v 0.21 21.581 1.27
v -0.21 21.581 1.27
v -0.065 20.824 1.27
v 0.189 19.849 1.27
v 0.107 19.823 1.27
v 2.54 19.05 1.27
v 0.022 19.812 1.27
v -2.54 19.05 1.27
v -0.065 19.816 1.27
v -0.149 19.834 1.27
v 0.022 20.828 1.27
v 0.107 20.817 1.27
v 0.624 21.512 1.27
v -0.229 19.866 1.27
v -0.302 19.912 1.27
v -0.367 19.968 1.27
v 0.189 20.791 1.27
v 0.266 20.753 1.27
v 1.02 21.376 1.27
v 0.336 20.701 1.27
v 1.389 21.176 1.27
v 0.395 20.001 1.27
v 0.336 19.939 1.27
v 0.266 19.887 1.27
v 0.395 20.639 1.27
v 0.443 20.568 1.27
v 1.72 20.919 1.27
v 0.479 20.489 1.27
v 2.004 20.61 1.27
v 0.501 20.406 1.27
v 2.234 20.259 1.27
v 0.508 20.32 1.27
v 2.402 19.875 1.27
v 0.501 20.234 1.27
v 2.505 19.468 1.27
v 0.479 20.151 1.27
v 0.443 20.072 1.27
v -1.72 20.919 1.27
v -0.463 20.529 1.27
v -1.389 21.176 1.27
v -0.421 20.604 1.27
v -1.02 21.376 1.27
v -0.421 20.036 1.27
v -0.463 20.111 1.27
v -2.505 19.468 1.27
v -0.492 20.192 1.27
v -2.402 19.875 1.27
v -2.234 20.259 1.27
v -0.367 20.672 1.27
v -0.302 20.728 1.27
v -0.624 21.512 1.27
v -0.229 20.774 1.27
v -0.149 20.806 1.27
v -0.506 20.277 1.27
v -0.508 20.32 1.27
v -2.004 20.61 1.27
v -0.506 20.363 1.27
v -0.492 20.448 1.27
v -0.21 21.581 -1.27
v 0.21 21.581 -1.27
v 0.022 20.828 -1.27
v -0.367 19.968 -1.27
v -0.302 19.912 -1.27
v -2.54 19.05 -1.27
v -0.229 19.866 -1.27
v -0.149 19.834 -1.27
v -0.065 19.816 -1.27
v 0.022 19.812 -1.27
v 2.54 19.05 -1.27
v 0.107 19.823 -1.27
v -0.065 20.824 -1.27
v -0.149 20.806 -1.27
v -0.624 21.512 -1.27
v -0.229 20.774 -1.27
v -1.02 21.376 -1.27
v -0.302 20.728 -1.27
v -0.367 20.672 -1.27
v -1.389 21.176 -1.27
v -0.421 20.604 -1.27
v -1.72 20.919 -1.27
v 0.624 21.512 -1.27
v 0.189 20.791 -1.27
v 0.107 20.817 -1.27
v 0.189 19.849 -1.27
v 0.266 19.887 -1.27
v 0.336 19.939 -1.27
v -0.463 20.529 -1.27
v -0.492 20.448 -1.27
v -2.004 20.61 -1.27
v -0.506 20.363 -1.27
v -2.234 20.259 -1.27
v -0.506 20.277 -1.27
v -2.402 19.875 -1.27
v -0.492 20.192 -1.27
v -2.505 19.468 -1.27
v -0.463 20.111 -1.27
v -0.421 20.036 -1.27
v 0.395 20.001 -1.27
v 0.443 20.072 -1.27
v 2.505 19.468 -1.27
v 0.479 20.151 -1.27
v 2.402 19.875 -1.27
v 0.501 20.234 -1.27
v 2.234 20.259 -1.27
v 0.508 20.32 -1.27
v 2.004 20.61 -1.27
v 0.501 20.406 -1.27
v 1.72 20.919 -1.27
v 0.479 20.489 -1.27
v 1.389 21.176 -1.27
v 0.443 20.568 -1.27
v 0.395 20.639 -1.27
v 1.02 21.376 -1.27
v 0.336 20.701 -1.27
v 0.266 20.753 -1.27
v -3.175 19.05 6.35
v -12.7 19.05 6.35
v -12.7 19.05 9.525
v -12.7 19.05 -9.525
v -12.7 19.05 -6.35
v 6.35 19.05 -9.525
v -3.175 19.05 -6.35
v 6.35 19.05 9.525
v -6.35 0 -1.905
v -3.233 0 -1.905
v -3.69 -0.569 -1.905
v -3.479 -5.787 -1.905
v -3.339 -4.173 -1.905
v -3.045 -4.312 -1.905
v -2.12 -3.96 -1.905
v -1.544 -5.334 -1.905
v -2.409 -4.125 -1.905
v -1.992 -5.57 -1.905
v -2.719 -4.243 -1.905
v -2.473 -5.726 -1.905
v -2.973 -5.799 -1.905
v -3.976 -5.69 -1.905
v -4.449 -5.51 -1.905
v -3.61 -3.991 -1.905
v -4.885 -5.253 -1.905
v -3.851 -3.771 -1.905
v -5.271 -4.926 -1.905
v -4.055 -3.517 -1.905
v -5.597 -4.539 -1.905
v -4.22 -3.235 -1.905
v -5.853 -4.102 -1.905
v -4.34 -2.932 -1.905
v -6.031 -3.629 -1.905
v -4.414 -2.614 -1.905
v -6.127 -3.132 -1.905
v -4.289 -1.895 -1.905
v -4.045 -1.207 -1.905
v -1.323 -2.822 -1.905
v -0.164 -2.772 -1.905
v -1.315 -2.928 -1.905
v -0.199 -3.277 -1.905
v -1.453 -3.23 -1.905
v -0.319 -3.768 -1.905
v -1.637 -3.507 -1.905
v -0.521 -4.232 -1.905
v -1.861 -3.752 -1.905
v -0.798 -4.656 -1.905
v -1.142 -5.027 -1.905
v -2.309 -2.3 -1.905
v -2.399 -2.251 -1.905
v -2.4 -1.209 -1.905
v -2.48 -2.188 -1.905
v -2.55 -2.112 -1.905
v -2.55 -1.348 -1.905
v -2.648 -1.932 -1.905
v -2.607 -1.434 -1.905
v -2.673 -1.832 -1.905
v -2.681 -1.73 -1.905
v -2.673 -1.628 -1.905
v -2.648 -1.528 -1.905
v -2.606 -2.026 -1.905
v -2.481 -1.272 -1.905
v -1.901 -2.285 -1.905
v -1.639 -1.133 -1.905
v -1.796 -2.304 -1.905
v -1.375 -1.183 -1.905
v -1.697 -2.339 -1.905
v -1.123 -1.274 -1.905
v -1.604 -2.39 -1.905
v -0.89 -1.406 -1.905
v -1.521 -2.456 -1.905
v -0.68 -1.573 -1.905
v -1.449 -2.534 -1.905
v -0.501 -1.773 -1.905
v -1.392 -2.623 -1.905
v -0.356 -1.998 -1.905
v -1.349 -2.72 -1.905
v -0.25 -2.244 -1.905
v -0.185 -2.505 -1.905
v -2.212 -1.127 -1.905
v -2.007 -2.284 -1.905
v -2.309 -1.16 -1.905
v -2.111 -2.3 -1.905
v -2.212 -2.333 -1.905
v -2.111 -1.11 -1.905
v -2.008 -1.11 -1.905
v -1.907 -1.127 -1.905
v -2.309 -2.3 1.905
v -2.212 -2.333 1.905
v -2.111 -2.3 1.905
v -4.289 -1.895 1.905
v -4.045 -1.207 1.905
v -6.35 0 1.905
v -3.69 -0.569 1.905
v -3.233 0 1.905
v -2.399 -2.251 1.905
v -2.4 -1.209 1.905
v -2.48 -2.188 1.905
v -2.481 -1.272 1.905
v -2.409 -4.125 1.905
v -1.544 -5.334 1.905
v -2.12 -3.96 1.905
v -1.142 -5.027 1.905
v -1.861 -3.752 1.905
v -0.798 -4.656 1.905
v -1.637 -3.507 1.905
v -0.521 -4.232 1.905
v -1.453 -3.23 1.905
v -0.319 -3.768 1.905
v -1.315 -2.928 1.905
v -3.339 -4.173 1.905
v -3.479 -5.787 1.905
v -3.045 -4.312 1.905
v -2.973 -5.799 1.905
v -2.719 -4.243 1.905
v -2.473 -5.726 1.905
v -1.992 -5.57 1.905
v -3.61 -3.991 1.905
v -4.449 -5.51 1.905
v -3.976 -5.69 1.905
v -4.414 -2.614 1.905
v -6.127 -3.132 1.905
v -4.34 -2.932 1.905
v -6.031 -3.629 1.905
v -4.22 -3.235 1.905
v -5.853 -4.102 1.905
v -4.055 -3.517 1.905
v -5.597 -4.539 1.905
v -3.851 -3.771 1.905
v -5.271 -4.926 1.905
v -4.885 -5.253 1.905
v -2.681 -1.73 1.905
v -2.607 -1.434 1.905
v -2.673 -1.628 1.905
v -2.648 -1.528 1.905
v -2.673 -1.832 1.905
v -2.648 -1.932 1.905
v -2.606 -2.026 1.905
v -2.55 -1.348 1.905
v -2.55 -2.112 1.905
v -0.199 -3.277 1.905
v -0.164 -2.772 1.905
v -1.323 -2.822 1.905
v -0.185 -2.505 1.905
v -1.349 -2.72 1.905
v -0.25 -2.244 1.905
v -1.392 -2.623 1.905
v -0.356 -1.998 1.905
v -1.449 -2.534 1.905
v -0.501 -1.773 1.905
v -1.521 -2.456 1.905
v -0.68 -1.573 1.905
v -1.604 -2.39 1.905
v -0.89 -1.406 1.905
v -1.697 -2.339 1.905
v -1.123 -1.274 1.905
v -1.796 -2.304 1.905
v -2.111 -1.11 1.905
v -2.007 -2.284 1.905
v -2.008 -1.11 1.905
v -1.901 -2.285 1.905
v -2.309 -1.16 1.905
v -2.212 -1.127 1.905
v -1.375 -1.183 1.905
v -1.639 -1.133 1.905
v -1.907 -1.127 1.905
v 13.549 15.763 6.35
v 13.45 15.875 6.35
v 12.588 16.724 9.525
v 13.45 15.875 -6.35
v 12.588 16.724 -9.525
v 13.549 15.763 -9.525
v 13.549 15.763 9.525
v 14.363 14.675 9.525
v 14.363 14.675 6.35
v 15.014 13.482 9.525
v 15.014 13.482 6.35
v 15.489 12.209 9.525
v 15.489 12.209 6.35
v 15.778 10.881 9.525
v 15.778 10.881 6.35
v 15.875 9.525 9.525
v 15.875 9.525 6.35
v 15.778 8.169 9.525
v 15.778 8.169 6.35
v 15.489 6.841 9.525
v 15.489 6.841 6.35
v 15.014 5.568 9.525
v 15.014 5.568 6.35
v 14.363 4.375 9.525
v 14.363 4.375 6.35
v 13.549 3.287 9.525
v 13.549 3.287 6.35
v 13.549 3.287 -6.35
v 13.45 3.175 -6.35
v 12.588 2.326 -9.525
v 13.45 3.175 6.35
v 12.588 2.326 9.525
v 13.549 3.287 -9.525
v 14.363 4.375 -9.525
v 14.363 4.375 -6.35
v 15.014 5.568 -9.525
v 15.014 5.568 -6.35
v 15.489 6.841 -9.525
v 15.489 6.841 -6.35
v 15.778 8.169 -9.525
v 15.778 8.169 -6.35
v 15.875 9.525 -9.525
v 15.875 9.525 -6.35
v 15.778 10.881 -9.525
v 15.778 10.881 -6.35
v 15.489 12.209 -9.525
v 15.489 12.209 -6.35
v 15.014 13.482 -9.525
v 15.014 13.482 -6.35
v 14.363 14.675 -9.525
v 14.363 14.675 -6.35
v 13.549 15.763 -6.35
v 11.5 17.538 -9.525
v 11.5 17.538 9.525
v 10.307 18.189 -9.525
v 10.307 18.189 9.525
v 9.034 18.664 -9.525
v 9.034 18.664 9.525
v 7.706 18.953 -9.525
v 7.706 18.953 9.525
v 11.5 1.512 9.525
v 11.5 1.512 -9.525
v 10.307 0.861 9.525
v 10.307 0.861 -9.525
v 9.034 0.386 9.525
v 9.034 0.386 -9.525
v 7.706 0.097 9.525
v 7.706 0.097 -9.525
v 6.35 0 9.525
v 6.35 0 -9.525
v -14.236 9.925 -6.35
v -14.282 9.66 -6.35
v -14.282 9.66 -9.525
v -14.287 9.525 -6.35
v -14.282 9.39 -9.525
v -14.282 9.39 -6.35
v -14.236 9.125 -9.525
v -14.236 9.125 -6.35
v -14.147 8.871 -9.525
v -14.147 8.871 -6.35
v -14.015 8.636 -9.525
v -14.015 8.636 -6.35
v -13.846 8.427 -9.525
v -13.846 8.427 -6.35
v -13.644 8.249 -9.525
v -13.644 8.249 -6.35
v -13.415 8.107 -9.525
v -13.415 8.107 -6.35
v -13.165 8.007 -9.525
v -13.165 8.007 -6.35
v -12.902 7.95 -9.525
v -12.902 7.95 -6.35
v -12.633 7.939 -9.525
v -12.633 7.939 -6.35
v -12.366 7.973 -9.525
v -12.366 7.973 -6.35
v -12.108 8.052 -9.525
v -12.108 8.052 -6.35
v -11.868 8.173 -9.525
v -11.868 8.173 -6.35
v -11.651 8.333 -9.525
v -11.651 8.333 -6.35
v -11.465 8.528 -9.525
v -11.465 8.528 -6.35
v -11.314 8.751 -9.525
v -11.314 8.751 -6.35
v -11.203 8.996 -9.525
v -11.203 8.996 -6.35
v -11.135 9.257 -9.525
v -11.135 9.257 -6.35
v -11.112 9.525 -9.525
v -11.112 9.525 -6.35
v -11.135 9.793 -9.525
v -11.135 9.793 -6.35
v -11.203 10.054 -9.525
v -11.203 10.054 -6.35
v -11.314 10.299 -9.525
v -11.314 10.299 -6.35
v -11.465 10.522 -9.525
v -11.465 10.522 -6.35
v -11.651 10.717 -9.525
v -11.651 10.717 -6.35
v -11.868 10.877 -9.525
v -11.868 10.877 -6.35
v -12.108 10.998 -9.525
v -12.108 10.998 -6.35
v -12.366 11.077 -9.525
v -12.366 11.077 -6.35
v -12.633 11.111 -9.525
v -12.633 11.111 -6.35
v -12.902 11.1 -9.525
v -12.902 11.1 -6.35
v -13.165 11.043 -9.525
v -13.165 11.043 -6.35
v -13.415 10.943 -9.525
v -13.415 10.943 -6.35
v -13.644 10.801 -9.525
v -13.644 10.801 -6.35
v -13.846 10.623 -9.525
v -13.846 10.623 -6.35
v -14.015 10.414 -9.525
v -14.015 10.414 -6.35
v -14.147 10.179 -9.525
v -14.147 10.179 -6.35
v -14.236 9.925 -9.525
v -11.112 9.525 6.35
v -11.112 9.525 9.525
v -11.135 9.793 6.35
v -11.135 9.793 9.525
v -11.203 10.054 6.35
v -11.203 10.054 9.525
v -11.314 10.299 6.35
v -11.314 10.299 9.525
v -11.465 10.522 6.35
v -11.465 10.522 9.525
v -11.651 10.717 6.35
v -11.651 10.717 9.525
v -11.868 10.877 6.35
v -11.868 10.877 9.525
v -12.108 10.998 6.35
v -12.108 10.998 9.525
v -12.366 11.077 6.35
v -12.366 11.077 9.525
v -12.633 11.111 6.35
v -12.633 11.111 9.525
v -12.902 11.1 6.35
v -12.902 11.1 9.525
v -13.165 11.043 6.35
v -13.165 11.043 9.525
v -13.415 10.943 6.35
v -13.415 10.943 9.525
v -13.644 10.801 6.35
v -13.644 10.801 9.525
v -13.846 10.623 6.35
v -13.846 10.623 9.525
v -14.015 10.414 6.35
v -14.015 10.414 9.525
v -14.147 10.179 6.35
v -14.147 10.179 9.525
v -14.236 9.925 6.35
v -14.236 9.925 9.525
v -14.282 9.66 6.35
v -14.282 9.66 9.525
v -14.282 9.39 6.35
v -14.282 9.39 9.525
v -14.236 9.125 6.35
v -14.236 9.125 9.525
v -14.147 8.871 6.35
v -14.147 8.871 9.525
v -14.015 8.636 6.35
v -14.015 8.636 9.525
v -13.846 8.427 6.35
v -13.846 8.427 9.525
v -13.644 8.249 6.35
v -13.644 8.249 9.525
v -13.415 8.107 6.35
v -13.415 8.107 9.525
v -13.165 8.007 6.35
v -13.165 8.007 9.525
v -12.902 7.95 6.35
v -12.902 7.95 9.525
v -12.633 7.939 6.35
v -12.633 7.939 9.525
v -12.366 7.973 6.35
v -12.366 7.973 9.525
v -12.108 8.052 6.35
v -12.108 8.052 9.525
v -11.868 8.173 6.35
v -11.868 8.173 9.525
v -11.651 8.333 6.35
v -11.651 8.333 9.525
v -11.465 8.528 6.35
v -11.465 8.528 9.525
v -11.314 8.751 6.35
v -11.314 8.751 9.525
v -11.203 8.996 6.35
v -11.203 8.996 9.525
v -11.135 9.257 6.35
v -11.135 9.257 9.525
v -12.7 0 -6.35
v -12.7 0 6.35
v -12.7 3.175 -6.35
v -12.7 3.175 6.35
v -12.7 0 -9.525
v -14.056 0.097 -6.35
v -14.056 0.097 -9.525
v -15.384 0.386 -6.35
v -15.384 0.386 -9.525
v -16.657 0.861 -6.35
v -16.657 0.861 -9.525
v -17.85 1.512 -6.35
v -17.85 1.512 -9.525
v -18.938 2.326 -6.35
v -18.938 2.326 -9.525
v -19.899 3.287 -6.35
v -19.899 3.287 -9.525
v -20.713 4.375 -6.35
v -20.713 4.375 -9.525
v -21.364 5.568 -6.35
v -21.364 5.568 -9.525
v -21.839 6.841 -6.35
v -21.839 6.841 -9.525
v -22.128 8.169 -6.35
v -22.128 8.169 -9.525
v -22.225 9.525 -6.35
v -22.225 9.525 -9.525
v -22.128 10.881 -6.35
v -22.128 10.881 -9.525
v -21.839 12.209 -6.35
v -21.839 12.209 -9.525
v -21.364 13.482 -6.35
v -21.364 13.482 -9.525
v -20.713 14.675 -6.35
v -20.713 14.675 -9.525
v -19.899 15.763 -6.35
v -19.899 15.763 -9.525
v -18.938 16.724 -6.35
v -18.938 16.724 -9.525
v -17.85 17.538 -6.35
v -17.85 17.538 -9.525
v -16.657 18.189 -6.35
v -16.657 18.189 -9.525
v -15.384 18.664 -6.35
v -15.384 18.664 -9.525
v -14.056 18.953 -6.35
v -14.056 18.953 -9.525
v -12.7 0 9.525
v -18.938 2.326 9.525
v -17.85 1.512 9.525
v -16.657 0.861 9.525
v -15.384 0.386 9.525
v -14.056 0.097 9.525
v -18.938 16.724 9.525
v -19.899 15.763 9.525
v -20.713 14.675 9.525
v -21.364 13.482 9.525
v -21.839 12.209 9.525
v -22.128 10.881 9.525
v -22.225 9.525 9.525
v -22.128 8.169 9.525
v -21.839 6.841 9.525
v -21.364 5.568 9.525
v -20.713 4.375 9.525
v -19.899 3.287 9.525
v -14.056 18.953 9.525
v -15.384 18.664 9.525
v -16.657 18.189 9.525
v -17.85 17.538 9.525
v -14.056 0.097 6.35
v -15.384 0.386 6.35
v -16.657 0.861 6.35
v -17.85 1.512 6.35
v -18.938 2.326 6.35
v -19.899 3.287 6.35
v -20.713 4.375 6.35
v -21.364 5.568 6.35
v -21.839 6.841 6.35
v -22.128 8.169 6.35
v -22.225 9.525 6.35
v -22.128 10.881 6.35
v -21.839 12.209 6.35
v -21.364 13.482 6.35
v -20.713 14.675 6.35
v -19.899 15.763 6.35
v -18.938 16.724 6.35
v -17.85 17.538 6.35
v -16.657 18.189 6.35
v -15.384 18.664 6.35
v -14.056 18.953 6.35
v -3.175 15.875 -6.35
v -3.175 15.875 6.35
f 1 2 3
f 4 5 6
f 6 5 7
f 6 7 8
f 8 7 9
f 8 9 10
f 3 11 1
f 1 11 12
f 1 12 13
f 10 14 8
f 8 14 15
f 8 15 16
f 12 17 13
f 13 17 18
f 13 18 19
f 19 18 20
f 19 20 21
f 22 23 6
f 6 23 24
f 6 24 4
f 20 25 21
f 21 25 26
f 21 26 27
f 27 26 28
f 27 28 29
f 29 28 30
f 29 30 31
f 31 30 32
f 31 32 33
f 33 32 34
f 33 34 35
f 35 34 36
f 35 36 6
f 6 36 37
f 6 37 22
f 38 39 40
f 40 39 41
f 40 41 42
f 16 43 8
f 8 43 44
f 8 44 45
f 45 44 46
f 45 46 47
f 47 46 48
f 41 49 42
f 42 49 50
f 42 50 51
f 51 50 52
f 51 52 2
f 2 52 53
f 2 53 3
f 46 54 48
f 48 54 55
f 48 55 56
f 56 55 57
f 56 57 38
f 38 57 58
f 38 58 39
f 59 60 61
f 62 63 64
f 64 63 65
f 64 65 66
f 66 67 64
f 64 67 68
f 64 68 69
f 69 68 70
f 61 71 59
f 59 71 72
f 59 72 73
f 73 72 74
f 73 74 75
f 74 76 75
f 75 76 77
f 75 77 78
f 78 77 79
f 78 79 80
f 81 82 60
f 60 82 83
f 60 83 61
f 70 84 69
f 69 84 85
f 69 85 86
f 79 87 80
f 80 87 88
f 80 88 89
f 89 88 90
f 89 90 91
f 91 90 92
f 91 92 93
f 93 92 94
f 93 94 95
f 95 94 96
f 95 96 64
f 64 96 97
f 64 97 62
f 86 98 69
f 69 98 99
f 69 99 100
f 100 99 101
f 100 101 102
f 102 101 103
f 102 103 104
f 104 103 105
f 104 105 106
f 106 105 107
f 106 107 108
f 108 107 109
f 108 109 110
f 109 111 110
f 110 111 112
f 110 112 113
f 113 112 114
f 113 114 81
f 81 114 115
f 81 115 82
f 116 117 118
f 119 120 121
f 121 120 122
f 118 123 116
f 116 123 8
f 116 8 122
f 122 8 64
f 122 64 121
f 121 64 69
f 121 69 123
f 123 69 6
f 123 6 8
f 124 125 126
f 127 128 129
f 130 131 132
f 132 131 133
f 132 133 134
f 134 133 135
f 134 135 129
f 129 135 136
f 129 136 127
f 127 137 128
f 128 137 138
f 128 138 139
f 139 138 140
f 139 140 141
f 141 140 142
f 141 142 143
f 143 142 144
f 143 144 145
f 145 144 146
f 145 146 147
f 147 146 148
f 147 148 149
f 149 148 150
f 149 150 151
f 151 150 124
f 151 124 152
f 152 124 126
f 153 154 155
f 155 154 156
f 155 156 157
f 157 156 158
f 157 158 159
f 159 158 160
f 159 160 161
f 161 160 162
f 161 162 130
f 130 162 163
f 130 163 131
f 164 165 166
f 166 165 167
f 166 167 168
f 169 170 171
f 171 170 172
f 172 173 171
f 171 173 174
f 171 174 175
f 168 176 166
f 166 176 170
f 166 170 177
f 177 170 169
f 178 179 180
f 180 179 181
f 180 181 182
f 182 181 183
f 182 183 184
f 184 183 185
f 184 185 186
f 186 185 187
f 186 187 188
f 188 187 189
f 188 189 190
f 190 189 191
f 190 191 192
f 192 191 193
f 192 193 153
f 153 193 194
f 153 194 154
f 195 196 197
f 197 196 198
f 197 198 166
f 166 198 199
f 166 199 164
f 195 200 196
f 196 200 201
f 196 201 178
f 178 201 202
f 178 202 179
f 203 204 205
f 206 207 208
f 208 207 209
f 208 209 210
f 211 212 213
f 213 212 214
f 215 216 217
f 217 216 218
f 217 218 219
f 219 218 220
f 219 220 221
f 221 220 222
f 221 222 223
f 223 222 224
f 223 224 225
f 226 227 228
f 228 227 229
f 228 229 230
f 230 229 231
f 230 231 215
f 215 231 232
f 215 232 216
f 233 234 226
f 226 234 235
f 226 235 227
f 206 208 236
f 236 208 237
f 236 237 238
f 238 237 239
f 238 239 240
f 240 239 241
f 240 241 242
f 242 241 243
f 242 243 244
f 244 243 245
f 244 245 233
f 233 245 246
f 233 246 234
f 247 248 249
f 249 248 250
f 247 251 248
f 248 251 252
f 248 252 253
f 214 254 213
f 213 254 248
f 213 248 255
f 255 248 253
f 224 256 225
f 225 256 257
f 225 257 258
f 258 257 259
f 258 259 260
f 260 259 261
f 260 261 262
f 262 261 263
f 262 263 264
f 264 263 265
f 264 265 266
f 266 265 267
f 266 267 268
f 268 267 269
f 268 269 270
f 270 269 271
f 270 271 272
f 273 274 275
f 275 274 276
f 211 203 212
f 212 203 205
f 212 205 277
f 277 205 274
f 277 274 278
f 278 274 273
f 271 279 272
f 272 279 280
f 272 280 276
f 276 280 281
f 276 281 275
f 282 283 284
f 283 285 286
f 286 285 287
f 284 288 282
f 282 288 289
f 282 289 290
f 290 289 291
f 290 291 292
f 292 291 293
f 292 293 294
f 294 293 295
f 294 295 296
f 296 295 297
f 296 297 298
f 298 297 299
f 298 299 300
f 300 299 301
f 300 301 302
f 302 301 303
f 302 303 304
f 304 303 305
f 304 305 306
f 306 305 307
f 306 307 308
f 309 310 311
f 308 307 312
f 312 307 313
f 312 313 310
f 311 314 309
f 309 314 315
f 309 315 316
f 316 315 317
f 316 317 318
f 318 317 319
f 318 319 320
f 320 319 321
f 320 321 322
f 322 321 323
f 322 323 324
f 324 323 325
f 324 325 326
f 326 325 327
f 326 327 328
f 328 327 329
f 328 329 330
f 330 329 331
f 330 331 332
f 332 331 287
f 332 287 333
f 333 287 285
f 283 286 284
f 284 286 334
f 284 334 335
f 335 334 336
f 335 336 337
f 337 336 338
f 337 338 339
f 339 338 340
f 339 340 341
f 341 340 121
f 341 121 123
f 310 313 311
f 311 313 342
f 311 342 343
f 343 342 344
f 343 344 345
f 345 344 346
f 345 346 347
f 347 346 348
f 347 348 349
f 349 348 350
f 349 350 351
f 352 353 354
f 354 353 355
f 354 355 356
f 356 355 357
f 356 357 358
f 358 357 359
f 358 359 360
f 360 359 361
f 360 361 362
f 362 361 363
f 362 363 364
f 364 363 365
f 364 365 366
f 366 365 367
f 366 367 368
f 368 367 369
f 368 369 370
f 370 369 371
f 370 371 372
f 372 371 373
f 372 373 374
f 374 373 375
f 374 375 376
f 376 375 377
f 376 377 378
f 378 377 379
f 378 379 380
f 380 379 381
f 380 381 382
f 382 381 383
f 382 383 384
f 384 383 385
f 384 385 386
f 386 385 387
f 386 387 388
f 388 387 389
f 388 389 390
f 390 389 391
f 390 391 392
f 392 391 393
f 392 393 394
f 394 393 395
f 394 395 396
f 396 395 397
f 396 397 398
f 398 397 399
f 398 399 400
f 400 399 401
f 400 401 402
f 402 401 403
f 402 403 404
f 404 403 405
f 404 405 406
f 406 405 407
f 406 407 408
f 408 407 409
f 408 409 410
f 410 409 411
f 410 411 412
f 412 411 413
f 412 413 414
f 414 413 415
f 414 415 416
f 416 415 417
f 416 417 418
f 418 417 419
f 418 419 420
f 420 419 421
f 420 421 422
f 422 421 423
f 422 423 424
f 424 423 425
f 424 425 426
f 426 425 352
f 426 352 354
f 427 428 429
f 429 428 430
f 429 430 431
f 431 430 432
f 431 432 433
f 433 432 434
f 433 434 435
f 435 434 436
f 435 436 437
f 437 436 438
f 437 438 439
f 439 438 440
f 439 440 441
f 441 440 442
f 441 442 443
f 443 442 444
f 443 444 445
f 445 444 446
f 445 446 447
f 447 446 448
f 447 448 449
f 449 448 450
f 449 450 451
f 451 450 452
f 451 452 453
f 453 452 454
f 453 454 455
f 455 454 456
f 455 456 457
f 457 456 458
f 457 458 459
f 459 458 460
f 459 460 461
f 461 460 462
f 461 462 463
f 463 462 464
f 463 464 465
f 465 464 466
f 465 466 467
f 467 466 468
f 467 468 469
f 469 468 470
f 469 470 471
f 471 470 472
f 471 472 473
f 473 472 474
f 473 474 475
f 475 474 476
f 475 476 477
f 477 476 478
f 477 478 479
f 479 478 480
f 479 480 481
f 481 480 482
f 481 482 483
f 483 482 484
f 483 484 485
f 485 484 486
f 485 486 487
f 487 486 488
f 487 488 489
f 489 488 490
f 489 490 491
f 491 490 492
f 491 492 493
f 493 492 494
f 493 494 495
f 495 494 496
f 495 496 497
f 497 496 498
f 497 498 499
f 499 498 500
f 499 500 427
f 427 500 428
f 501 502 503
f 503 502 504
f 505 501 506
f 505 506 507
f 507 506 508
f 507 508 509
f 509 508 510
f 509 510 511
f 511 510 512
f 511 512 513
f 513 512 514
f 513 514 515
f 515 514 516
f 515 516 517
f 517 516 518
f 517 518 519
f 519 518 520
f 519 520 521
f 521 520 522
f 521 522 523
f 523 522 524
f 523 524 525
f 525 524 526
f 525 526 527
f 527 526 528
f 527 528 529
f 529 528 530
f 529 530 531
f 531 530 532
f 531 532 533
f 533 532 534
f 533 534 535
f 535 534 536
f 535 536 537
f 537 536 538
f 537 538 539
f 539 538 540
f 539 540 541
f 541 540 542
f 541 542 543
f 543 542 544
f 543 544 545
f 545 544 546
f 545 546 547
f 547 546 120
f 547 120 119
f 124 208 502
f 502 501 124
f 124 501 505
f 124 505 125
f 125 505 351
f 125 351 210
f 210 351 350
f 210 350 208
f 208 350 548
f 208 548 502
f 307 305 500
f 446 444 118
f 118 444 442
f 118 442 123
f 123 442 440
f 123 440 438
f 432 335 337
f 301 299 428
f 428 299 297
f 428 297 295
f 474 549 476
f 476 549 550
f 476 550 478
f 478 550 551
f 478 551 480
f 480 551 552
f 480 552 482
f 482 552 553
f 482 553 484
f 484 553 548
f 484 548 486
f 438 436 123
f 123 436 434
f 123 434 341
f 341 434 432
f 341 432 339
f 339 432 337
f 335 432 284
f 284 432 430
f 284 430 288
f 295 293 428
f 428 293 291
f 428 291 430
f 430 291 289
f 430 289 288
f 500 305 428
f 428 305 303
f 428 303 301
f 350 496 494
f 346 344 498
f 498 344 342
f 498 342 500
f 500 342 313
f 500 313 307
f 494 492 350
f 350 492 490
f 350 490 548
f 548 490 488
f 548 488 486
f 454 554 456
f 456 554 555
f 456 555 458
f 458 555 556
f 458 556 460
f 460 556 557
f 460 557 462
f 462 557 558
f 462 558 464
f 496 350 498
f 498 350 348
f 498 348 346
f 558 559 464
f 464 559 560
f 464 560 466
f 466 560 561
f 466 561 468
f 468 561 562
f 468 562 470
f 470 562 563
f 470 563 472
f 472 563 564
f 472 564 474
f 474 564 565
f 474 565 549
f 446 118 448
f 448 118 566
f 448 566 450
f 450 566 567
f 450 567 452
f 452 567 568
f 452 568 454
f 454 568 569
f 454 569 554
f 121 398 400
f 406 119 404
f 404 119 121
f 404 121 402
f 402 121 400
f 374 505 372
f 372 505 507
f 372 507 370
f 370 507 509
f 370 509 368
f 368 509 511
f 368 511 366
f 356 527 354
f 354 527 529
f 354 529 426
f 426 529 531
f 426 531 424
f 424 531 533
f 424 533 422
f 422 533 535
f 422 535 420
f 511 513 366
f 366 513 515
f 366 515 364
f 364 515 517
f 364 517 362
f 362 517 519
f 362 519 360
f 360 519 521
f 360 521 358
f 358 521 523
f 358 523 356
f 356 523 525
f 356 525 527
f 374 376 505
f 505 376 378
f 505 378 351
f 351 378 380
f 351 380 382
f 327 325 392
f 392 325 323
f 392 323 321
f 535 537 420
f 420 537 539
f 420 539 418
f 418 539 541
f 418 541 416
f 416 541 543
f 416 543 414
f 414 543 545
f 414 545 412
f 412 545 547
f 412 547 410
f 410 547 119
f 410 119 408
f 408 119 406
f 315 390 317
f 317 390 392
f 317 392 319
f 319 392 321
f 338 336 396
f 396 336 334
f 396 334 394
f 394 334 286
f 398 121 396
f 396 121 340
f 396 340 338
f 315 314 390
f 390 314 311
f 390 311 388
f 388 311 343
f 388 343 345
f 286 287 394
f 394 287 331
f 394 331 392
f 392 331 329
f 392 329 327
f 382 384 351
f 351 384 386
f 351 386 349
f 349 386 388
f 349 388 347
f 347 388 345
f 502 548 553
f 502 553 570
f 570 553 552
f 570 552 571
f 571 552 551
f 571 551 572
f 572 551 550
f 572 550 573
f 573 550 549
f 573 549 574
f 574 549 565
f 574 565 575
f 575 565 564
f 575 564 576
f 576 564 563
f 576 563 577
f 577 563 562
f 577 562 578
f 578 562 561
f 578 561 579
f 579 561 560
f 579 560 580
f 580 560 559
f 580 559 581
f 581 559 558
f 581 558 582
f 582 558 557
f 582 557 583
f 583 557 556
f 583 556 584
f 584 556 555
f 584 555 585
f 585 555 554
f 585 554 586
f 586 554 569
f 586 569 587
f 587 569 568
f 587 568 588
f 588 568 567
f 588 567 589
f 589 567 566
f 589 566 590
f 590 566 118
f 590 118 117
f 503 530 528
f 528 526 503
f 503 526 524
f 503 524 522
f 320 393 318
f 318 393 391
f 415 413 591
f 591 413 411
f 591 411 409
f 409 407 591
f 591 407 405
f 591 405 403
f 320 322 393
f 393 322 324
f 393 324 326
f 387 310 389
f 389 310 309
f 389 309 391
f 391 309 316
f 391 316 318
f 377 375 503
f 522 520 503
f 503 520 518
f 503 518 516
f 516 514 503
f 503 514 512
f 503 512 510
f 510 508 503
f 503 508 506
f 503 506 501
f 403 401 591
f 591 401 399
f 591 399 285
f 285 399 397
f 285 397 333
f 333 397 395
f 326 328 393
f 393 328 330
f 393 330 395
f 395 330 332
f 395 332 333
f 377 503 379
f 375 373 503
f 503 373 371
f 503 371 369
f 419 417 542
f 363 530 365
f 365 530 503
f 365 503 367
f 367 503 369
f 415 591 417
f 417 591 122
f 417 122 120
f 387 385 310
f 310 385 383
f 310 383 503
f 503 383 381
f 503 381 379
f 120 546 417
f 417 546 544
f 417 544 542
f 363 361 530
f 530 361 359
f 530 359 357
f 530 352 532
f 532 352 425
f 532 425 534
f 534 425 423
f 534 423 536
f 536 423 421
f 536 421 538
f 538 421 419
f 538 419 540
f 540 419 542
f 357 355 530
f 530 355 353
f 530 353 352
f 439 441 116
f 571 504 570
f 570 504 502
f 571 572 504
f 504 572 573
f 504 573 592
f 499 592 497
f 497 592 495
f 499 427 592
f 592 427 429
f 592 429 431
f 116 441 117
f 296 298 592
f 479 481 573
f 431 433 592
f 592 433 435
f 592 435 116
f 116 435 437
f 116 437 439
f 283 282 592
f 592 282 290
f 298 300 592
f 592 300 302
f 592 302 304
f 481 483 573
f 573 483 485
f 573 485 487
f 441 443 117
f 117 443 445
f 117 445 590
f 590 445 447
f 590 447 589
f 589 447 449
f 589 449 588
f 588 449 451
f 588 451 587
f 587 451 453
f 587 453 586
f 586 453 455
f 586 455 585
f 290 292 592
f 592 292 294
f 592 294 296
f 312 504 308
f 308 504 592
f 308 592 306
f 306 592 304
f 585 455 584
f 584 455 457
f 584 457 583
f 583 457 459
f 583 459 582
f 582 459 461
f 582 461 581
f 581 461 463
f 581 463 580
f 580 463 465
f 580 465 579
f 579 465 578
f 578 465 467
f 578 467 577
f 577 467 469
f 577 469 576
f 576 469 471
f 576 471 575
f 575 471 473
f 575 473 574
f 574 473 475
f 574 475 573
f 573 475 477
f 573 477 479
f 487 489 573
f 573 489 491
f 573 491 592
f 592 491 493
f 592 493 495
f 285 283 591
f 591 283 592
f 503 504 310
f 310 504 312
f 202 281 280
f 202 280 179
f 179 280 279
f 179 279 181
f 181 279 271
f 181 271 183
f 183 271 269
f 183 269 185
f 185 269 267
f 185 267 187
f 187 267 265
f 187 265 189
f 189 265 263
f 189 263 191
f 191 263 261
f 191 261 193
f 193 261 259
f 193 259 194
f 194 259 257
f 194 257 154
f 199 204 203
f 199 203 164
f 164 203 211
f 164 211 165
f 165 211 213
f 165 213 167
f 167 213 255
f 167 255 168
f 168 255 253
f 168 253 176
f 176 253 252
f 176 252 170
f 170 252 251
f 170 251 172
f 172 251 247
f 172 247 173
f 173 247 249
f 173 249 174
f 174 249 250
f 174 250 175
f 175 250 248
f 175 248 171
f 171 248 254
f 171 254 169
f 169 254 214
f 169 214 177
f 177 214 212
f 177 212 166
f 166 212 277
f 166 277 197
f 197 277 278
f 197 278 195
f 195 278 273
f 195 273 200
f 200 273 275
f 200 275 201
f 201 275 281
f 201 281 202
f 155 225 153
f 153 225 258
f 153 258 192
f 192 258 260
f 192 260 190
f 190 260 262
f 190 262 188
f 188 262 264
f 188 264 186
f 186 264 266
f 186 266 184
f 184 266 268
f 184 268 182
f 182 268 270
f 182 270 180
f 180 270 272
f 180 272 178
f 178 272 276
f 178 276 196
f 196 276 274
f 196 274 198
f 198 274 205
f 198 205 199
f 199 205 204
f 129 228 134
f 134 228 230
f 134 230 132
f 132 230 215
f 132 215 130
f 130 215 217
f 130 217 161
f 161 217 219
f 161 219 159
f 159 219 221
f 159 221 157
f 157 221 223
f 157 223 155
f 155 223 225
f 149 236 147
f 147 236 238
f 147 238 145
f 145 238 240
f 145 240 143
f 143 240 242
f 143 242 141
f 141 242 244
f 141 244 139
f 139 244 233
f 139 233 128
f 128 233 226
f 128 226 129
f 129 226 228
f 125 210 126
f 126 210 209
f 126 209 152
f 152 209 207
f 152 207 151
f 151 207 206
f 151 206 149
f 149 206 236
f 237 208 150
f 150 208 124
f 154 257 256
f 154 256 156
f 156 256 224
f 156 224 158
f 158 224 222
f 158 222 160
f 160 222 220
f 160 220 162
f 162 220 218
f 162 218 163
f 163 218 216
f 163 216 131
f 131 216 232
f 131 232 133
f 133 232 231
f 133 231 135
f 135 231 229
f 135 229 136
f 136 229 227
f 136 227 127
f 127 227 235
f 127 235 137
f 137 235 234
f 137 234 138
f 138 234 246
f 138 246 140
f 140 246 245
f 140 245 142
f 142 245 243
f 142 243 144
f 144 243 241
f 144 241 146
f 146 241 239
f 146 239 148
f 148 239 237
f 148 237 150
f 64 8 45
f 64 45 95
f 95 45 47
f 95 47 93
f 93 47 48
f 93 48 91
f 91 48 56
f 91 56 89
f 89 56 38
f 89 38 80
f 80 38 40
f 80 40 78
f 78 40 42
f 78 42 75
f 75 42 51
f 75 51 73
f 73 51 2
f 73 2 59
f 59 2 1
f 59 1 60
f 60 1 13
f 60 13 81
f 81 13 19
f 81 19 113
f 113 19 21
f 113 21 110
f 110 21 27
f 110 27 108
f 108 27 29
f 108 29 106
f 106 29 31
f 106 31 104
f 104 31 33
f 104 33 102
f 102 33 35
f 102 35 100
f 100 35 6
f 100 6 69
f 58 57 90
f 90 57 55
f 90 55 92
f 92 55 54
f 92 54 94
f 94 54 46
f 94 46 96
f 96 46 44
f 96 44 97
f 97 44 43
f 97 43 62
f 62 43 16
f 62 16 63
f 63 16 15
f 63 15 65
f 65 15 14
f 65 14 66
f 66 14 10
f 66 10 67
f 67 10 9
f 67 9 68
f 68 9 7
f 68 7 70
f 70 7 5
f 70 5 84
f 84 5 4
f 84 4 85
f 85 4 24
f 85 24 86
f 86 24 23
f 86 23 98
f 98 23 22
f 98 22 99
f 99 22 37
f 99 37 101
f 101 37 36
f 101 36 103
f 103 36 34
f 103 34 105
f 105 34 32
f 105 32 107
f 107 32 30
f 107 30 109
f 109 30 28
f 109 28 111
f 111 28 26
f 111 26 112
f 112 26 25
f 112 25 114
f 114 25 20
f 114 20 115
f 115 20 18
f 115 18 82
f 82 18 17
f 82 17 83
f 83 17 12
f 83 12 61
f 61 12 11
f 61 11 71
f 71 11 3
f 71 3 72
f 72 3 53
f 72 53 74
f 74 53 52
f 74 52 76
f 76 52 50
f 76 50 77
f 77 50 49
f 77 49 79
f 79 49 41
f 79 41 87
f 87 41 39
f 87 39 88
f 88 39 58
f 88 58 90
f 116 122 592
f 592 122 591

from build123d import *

# Parameters (mm, degrees)
SKETCH1_W           = 38.1
SKETCH1_H           = 19.05
BOSS_EXTRUDE1_DEPTH = 19.05
SKETCH2_R           = 1.5875
CUT_EXTRUDE2_DEPTH  = 19.05
SKETCH3_W           = 16.620070223
SKETCH3_H           = 12.7
CUT_EXTRUDE3_DEPTH  = 19.05
SKETCH4_W           = 12.7
SKETCH4_H           = 12.7
CUT_EXTRUDE4_DEPTH  = 50.8
SKETCH6_W           = 7.660570014
SKETCH6_H           = 3.81
BOSS_EXTRUDE2_DEPTH = 7.62
CUT_EXTRUDE6_DEPTH  = 19.05
SKETCH8_W           = 5.08
SKETCH8_H           = 2.54
BOSS_EXTRUDE3_DEPTH = 2.54
SKETCH9_R           = 0.508
CUT_EXTRUDE7_DEPTH  = 19.05
SKETCH10_W          = 9.525
SKETCH10_H          = 12.7
CUT_EXTRUDE8_DEPTH  = 3.81


with BuildPart() as part:
    # Sketch1 → Boss-Extrude1 (new body)
    with BuildSketch(Plane(origin=(0, 0, 0), x_dir=(1, 0, 0), z_dir=(0, 1, 0))):
        with Locations((-3.175, 0)):
            Rectangle(SKETCH1_W, SKETCH1_H)
    extrude(amount=BOSS_EXTRUDE1_DEPTH)

    # Sketch2 → Cut-Extrude2 (cut)
    with BuildSketch(Plane.XY.offset(9.525)):
        with Locations((-12.7, 9.525)):
            Circle(SKETCH2_R)
        with BuildLine():
            ThreePointArc((-12.7, 19.05), (-22.225, 9.525), (-12.7, 0))
            ThreePointArc((-12.7, 0), (-33.665146333, 9.525), (-12.7, 19.05))
        make_face()
        with BuildLine():
            ThreePointArc((6.35, 0), (15.875, 9.525), (6.35, 19.05))
            ThreePointArc((6.35, 19.05), (24.948138119, 9.525), (6.35, 0))
        make_face()
    extrude(amount=-CUT_EXTRUDE2_DEPTH, mode=Mode.SUBTRACT)

    # Sketch3 → Cut-Extrude3 (cut)
    with BuildSketch(Plane(origin=(0, 19.05, 0), x_dir=(1, 0, 0), z_dir=(0, 1, 0))):
        with Locations((-21.010035112, 0)):
            Rectangle(SKETCH3_W, SKETCH3_H)
    extrude(amount=-CUT_EXTRUDE3_DEPTH, mode=Mode.SUBTRACT)

    # Sketch4 → Cut-Extrude4 (cut)
    with BuildSketch(Plane(origin=(-15.875, 0, 0), x_dir=(0, 0, -1), z_dir=(1, 0, 0))):
        with Locations((0, 9.525)):
            Rectangle(SKETCH4_W, SKETCH4_H)
    extrude(amount=CUT_EXTRUDE4_DEPTH, mode=Mode.SUBTRACT)

    # Sketch6 → Boss-Extrude2 (add)
    with BuildSketch(Plane(origin=(0, 0, 0), x_dir=(1, 0, 0), z_dir=(0, 1, 0))):
        with Locations((-2.519714993, 0)):
            Rectangle(SKETCH6_W, SKETCH6_H)
    extrude(amount=-BOSS_EXTRUDE2_DEPTH)

    # Sketch7 → Cut-Extrude6 (cut)
    with BuildSketch(Plane.XY.offset(9.525)):
        with BuildLine():
            Line((-7.080935196, -3.131729905), (-6.858, 0))
            Line((-6.858, 0), (-6.858, -7.767816491))
            Line((-6.858, -7.767816491), (-14.771031914, -7.767816491))
            Line((-14.771031914, -7.767816491), (-14.771031914, 0))
            Line((-14.771031914, 0), (-9.975013633, 0))
            ThreePointArc((-9.975013633, 0), (-9.162678538, -1.206904896), (-8.794375076, -2.614335284))
            ThreePointArc((-8.794375076, -2.614335284), (-9.25025826, -3.647474967), (-10.163496252, -4.311706442))
            ThreePointArc((-10.163496252, -4.311706442), (-11.221462334, -3.861030674), (-11.89339597, -2.927807191))
            ThreePointArc((-11.89339597, -2.927807191), (-11.604147707, -2.390005207), (-10.996168015, -2.332941862))
            ThreePointArc((-10.996168015, -2.332941862), (-10.54556137, -1.577353268), (-11.301149964, -1.126746624))
            ThreePointArc((-11.301149964, -1.126746624), (-12.52752029, -1.573373178), (-13.044460874, -2.771802103))
            ThreePointArc((-13.044460874, -2.771802103), (-12.016160281, -5.071387383), (-9.595781192, -5.769427237))
            ThreePointArc((-9.595781192, -5.769427237), (-7.890109837, -4.877949662), (-7.080935196, -3.131729905))
        make_face()
        with BuildLine():
            Line((1.563031914, 0), (-3.232986367, 0))
            ThreePointArc((-3.232986367, 0), (-4.045321462, -1.206904896), (-4.413624924, -2.614335284))
            ThreePointArc((-4.413624924, -2.614335284), (-3.95774174, -3.647474967), (-3.044503748, -4.311706442))
            ThreePointArc((-3.044503748, -4.311706442), (-1.986537666, -3.861030674), (-1.31460403, -2.927807191))
            ThreePointArc((-1.31460403, -2.927807191), (-1.603852293, -2.390005207), (-2.211831985, -2.332941862))
            ThreePointArc((-2.211831985, -2.332941862), (-2.66243863, -1.577353268), (-1.906850036, -1.126746624))
            ThreePointArc((-1.906850036, -1.126746624), (-0.68047971, -1.573373178), (-0.163539126, -2.771802103))
            ThreePointArc((-0.163539126, -2.771802103), (-1.191839719, -5.071387383), (-3.612218808, -5.769427237))
            ThreePointArc((-3.612218808, -5.769427237), (-5.317890163, -4.877949662), (-6.127064804, -3.131729905))
            Line((-6.127064804, -3.131729905), (-6.35, 0))
            Line((-6.35, 0), (-6.35, -7.767816491))
            Line((-6.35, -7.767816491), (1.563031914, -7.767816491))
            Line((1.563031914, -7.767816491), (1.563031914, 0))
        make_face()
    extrude(amount=-CUT_EXTRUDE6_DEPTH, mode=Mode.SUBTRACT)

    # Sketch8 → Boss-Extrude3 (add)
    with BuildSketch(Plane(origin=(0, 19.05, 0), x_dir=(1, 0, 0), z_dir=(0, 1, 0))):
        Rectangle(SKETCH8_W, SKETCH8_H)
    extrude(amount=BOSS_EXTRUDE3_DEPTH)

    # Sketch9 → Cut-Extrude7 (cut)
    with BuildSketch(Plane.XY.offset(9.525)):
        with Locations((0, 20.32)):
            Circle(SKETCH9_R)
        with BuildLine():
            ThreePointArc((-2.54, 19.05), (0, 21.59), (2.54, 19.05))
            ThreePointArc((2.54, 19.05), (0, 23.383223271), (-2.54, 19.05))
        make_face()
    extrude(amount=-CUT_EXTRUDE7_DEPTH, mode=Mode.SUBTRACT)

    # Sketch10 → Cut-Extrude8 (cut)
    with BuildSketch(Plane(origin=(0, 19.05, 0), x_dir=(1, 0, 0), z_dir=(0, 1, 0))):
        with Locations((-7.9375, 0)):
            Rectangle(SKETCH10_W, SKETCH10_H)
    extrude(amount=-CUT_EXTRUDE8_DEPTH, mode=Mode.SUBTRACT)


solid = part.part
